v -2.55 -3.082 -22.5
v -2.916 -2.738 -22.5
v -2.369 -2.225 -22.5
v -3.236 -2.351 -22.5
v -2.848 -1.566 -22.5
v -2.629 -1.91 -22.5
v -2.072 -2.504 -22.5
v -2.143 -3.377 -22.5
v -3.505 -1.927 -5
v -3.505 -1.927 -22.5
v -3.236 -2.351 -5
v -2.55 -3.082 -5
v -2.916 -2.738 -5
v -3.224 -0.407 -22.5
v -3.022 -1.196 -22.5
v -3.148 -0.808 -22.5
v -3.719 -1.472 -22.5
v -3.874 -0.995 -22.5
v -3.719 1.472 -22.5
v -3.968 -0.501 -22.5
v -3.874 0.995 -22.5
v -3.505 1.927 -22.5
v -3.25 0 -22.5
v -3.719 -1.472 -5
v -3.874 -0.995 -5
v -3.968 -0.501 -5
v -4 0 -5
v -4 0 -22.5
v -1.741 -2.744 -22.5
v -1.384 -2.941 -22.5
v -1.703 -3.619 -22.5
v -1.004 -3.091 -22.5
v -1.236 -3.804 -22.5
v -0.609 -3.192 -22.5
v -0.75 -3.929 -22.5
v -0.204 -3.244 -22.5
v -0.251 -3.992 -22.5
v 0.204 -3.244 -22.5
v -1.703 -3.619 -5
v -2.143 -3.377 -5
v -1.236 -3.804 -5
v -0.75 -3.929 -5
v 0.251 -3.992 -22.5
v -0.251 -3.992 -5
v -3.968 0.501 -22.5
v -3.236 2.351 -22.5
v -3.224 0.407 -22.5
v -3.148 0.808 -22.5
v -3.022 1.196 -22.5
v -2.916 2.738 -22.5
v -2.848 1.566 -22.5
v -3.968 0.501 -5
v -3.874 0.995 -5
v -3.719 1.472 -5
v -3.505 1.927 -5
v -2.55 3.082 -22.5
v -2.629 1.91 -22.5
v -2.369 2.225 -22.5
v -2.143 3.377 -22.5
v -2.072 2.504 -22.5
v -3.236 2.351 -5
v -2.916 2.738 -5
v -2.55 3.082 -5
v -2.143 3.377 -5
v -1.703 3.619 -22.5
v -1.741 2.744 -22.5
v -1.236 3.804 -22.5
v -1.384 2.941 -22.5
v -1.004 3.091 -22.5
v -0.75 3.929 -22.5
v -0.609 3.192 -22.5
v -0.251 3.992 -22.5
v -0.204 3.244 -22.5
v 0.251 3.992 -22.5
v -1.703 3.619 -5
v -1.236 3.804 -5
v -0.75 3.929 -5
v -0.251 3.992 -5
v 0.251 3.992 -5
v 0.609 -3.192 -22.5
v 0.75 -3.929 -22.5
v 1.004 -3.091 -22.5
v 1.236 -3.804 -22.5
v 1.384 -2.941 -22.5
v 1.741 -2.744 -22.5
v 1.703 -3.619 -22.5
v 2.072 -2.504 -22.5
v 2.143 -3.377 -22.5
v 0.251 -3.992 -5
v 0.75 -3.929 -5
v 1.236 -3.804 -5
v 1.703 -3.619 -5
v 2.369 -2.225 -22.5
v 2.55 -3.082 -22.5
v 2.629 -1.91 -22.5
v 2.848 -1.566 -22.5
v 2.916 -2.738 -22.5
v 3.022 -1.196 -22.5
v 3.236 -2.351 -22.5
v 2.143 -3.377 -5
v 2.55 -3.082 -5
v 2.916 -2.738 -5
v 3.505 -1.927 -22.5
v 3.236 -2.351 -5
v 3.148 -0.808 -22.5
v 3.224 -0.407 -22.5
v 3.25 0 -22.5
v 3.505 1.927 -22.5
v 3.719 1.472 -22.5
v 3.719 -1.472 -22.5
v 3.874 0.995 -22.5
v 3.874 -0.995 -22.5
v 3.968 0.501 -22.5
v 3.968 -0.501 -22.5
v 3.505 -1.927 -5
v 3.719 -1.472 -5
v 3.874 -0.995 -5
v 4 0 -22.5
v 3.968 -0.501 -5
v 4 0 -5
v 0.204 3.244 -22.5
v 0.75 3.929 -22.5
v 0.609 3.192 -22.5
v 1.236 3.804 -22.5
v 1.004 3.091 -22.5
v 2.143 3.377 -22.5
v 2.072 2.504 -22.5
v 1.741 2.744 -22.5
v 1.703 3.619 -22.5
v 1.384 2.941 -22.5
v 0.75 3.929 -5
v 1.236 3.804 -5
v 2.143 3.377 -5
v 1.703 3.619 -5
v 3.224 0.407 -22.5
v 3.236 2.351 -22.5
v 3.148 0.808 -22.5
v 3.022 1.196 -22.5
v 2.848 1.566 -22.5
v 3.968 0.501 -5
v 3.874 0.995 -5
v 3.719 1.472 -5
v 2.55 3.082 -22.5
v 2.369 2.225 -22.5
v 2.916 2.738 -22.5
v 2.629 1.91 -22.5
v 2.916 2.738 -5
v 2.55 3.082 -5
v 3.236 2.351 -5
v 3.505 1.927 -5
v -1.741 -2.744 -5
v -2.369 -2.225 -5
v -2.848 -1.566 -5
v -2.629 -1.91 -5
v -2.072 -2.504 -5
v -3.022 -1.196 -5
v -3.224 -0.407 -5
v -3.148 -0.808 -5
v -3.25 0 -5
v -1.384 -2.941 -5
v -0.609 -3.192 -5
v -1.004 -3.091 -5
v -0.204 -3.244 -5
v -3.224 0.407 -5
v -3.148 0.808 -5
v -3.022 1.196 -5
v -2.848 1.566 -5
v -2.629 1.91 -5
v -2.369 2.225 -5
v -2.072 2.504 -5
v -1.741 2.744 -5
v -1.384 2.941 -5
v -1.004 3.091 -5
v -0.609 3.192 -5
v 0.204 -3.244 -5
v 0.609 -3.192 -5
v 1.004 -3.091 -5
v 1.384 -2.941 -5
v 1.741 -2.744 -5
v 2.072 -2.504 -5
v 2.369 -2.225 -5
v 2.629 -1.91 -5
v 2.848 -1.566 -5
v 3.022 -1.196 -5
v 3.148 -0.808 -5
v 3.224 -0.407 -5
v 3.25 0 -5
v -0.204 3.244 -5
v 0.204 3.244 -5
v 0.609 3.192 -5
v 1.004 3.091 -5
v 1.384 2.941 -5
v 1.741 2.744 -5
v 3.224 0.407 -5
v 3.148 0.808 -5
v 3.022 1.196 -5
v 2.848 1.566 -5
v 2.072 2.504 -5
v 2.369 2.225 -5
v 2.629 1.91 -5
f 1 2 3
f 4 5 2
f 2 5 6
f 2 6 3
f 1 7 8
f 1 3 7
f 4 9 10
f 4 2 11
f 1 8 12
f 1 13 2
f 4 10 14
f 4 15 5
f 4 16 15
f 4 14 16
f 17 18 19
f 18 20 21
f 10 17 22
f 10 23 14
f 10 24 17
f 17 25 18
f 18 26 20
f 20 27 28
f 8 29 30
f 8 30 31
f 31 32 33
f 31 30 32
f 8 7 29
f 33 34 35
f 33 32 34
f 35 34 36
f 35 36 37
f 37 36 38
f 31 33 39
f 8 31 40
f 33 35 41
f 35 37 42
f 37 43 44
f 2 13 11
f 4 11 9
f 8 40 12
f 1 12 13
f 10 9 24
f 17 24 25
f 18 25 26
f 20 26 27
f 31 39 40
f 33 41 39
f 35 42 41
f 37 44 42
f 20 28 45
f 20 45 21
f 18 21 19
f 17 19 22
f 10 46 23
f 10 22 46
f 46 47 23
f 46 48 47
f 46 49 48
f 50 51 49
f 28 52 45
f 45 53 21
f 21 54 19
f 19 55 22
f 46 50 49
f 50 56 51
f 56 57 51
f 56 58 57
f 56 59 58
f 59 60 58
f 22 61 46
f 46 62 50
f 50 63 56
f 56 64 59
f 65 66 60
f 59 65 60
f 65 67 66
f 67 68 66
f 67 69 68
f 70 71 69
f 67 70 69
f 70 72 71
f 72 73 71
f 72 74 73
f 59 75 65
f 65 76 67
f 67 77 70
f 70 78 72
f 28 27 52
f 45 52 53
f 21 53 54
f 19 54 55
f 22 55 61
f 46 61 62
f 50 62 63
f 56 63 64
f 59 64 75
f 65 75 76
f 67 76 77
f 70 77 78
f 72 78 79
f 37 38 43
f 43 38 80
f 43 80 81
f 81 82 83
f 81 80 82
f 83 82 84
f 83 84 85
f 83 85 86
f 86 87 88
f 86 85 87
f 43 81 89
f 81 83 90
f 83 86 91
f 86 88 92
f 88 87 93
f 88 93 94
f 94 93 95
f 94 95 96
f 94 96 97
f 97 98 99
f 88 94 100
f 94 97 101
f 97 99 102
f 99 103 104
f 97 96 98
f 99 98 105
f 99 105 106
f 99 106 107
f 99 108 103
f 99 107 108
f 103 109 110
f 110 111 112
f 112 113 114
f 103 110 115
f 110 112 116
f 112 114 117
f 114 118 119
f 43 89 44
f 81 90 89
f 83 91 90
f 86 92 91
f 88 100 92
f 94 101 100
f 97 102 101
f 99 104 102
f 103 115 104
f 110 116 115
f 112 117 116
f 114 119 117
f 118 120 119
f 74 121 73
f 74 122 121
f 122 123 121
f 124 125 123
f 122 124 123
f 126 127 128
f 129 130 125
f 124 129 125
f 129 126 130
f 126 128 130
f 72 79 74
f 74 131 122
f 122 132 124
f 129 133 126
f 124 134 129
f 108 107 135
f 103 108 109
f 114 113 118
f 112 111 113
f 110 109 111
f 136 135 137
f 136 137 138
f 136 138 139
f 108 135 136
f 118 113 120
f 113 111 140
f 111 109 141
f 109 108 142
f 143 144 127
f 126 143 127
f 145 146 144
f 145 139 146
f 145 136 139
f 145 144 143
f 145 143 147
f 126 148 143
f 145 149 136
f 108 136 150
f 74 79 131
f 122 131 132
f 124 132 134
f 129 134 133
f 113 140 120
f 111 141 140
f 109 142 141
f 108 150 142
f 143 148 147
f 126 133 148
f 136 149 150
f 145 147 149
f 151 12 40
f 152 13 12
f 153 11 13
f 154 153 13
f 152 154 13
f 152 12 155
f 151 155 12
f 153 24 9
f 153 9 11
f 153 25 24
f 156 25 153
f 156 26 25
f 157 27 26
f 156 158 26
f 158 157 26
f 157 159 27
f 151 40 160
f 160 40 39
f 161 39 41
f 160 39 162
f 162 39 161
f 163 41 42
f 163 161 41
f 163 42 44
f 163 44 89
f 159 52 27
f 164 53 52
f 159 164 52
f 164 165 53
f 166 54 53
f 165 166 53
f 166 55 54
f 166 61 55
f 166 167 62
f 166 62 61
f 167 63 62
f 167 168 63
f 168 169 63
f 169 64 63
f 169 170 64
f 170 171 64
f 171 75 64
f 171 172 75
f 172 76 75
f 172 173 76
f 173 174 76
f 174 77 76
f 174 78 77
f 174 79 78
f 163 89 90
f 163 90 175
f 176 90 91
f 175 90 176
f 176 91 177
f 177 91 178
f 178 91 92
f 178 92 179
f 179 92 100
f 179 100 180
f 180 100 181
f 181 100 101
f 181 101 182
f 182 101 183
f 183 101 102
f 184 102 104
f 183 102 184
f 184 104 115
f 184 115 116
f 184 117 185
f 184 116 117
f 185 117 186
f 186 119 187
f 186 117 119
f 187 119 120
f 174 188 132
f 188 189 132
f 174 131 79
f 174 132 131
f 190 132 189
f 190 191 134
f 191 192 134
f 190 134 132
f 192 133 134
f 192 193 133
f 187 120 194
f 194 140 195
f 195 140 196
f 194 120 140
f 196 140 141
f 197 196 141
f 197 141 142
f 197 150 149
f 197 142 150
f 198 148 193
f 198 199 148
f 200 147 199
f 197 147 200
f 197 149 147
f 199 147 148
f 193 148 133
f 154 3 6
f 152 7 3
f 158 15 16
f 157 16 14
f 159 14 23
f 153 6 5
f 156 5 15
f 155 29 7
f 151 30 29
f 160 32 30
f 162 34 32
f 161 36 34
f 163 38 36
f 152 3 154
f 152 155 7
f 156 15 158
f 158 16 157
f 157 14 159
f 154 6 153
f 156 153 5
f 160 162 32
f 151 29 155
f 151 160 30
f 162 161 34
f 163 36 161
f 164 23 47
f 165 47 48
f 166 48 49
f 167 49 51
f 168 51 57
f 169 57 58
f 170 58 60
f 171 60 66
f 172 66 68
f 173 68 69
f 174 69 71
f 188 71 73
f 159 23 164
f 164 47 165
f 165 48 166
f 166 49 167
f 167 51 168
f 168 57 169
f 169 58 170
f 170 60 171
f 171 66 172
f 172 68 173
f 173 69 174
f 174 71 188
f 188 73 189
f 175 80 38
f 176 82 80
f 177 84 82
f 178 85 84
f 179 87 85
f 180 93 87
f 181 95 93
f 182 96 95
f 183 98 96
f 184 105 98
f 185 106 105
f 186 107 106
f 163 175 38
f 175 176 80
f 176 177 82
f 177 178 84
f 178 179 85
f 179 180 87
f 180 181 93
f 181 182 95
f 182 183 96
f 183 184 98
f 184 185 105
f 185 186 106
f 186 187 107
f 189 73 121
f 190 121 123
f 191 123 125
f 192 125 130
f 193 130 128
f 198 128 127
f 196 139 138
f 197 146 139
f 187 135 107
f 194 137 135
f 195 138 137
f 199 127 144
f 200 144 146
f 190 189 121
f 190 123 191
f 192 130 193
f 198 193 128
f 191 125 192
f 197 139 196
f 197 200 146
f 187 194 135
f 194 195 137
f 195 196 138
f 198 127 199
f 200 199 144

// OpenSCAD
$fn = 50;

difference() {
	union() {
		translate(v = [0, 0, -22.5]) {
			cylinder(h = 22.5, r = 4.0);
		}
		#translate(v = [0, 0, -24.0]) {
			cylinder(h = 24, r = 2.875);
		}
	}
	union() {
		translate(v = [0, 0, 0]) {
			rotate(a = [0, 0, 0]) {
				difference() {
					union() {
						translate(v = [0, 0, -5]) {
							linear_extrude(height = 5) {
								polygon(points = [[5.914249999999999, 0.0], [2.957125, 5.1218907443321156], [-2.9571249999999982, 5.1218907443321156], [-5.914249999999999, 7.242867331857232e-16], [-2.9571250000000022, -5.121890744332115], [2.9571249999999956, -5.121890744332118]]);
							}
						}
					}
					union();
				}
			}
		}
		#translate(v = [0, 0, -100.0]) {
			cylinder(h = 200, r = 3.25);
		}
	}
}
